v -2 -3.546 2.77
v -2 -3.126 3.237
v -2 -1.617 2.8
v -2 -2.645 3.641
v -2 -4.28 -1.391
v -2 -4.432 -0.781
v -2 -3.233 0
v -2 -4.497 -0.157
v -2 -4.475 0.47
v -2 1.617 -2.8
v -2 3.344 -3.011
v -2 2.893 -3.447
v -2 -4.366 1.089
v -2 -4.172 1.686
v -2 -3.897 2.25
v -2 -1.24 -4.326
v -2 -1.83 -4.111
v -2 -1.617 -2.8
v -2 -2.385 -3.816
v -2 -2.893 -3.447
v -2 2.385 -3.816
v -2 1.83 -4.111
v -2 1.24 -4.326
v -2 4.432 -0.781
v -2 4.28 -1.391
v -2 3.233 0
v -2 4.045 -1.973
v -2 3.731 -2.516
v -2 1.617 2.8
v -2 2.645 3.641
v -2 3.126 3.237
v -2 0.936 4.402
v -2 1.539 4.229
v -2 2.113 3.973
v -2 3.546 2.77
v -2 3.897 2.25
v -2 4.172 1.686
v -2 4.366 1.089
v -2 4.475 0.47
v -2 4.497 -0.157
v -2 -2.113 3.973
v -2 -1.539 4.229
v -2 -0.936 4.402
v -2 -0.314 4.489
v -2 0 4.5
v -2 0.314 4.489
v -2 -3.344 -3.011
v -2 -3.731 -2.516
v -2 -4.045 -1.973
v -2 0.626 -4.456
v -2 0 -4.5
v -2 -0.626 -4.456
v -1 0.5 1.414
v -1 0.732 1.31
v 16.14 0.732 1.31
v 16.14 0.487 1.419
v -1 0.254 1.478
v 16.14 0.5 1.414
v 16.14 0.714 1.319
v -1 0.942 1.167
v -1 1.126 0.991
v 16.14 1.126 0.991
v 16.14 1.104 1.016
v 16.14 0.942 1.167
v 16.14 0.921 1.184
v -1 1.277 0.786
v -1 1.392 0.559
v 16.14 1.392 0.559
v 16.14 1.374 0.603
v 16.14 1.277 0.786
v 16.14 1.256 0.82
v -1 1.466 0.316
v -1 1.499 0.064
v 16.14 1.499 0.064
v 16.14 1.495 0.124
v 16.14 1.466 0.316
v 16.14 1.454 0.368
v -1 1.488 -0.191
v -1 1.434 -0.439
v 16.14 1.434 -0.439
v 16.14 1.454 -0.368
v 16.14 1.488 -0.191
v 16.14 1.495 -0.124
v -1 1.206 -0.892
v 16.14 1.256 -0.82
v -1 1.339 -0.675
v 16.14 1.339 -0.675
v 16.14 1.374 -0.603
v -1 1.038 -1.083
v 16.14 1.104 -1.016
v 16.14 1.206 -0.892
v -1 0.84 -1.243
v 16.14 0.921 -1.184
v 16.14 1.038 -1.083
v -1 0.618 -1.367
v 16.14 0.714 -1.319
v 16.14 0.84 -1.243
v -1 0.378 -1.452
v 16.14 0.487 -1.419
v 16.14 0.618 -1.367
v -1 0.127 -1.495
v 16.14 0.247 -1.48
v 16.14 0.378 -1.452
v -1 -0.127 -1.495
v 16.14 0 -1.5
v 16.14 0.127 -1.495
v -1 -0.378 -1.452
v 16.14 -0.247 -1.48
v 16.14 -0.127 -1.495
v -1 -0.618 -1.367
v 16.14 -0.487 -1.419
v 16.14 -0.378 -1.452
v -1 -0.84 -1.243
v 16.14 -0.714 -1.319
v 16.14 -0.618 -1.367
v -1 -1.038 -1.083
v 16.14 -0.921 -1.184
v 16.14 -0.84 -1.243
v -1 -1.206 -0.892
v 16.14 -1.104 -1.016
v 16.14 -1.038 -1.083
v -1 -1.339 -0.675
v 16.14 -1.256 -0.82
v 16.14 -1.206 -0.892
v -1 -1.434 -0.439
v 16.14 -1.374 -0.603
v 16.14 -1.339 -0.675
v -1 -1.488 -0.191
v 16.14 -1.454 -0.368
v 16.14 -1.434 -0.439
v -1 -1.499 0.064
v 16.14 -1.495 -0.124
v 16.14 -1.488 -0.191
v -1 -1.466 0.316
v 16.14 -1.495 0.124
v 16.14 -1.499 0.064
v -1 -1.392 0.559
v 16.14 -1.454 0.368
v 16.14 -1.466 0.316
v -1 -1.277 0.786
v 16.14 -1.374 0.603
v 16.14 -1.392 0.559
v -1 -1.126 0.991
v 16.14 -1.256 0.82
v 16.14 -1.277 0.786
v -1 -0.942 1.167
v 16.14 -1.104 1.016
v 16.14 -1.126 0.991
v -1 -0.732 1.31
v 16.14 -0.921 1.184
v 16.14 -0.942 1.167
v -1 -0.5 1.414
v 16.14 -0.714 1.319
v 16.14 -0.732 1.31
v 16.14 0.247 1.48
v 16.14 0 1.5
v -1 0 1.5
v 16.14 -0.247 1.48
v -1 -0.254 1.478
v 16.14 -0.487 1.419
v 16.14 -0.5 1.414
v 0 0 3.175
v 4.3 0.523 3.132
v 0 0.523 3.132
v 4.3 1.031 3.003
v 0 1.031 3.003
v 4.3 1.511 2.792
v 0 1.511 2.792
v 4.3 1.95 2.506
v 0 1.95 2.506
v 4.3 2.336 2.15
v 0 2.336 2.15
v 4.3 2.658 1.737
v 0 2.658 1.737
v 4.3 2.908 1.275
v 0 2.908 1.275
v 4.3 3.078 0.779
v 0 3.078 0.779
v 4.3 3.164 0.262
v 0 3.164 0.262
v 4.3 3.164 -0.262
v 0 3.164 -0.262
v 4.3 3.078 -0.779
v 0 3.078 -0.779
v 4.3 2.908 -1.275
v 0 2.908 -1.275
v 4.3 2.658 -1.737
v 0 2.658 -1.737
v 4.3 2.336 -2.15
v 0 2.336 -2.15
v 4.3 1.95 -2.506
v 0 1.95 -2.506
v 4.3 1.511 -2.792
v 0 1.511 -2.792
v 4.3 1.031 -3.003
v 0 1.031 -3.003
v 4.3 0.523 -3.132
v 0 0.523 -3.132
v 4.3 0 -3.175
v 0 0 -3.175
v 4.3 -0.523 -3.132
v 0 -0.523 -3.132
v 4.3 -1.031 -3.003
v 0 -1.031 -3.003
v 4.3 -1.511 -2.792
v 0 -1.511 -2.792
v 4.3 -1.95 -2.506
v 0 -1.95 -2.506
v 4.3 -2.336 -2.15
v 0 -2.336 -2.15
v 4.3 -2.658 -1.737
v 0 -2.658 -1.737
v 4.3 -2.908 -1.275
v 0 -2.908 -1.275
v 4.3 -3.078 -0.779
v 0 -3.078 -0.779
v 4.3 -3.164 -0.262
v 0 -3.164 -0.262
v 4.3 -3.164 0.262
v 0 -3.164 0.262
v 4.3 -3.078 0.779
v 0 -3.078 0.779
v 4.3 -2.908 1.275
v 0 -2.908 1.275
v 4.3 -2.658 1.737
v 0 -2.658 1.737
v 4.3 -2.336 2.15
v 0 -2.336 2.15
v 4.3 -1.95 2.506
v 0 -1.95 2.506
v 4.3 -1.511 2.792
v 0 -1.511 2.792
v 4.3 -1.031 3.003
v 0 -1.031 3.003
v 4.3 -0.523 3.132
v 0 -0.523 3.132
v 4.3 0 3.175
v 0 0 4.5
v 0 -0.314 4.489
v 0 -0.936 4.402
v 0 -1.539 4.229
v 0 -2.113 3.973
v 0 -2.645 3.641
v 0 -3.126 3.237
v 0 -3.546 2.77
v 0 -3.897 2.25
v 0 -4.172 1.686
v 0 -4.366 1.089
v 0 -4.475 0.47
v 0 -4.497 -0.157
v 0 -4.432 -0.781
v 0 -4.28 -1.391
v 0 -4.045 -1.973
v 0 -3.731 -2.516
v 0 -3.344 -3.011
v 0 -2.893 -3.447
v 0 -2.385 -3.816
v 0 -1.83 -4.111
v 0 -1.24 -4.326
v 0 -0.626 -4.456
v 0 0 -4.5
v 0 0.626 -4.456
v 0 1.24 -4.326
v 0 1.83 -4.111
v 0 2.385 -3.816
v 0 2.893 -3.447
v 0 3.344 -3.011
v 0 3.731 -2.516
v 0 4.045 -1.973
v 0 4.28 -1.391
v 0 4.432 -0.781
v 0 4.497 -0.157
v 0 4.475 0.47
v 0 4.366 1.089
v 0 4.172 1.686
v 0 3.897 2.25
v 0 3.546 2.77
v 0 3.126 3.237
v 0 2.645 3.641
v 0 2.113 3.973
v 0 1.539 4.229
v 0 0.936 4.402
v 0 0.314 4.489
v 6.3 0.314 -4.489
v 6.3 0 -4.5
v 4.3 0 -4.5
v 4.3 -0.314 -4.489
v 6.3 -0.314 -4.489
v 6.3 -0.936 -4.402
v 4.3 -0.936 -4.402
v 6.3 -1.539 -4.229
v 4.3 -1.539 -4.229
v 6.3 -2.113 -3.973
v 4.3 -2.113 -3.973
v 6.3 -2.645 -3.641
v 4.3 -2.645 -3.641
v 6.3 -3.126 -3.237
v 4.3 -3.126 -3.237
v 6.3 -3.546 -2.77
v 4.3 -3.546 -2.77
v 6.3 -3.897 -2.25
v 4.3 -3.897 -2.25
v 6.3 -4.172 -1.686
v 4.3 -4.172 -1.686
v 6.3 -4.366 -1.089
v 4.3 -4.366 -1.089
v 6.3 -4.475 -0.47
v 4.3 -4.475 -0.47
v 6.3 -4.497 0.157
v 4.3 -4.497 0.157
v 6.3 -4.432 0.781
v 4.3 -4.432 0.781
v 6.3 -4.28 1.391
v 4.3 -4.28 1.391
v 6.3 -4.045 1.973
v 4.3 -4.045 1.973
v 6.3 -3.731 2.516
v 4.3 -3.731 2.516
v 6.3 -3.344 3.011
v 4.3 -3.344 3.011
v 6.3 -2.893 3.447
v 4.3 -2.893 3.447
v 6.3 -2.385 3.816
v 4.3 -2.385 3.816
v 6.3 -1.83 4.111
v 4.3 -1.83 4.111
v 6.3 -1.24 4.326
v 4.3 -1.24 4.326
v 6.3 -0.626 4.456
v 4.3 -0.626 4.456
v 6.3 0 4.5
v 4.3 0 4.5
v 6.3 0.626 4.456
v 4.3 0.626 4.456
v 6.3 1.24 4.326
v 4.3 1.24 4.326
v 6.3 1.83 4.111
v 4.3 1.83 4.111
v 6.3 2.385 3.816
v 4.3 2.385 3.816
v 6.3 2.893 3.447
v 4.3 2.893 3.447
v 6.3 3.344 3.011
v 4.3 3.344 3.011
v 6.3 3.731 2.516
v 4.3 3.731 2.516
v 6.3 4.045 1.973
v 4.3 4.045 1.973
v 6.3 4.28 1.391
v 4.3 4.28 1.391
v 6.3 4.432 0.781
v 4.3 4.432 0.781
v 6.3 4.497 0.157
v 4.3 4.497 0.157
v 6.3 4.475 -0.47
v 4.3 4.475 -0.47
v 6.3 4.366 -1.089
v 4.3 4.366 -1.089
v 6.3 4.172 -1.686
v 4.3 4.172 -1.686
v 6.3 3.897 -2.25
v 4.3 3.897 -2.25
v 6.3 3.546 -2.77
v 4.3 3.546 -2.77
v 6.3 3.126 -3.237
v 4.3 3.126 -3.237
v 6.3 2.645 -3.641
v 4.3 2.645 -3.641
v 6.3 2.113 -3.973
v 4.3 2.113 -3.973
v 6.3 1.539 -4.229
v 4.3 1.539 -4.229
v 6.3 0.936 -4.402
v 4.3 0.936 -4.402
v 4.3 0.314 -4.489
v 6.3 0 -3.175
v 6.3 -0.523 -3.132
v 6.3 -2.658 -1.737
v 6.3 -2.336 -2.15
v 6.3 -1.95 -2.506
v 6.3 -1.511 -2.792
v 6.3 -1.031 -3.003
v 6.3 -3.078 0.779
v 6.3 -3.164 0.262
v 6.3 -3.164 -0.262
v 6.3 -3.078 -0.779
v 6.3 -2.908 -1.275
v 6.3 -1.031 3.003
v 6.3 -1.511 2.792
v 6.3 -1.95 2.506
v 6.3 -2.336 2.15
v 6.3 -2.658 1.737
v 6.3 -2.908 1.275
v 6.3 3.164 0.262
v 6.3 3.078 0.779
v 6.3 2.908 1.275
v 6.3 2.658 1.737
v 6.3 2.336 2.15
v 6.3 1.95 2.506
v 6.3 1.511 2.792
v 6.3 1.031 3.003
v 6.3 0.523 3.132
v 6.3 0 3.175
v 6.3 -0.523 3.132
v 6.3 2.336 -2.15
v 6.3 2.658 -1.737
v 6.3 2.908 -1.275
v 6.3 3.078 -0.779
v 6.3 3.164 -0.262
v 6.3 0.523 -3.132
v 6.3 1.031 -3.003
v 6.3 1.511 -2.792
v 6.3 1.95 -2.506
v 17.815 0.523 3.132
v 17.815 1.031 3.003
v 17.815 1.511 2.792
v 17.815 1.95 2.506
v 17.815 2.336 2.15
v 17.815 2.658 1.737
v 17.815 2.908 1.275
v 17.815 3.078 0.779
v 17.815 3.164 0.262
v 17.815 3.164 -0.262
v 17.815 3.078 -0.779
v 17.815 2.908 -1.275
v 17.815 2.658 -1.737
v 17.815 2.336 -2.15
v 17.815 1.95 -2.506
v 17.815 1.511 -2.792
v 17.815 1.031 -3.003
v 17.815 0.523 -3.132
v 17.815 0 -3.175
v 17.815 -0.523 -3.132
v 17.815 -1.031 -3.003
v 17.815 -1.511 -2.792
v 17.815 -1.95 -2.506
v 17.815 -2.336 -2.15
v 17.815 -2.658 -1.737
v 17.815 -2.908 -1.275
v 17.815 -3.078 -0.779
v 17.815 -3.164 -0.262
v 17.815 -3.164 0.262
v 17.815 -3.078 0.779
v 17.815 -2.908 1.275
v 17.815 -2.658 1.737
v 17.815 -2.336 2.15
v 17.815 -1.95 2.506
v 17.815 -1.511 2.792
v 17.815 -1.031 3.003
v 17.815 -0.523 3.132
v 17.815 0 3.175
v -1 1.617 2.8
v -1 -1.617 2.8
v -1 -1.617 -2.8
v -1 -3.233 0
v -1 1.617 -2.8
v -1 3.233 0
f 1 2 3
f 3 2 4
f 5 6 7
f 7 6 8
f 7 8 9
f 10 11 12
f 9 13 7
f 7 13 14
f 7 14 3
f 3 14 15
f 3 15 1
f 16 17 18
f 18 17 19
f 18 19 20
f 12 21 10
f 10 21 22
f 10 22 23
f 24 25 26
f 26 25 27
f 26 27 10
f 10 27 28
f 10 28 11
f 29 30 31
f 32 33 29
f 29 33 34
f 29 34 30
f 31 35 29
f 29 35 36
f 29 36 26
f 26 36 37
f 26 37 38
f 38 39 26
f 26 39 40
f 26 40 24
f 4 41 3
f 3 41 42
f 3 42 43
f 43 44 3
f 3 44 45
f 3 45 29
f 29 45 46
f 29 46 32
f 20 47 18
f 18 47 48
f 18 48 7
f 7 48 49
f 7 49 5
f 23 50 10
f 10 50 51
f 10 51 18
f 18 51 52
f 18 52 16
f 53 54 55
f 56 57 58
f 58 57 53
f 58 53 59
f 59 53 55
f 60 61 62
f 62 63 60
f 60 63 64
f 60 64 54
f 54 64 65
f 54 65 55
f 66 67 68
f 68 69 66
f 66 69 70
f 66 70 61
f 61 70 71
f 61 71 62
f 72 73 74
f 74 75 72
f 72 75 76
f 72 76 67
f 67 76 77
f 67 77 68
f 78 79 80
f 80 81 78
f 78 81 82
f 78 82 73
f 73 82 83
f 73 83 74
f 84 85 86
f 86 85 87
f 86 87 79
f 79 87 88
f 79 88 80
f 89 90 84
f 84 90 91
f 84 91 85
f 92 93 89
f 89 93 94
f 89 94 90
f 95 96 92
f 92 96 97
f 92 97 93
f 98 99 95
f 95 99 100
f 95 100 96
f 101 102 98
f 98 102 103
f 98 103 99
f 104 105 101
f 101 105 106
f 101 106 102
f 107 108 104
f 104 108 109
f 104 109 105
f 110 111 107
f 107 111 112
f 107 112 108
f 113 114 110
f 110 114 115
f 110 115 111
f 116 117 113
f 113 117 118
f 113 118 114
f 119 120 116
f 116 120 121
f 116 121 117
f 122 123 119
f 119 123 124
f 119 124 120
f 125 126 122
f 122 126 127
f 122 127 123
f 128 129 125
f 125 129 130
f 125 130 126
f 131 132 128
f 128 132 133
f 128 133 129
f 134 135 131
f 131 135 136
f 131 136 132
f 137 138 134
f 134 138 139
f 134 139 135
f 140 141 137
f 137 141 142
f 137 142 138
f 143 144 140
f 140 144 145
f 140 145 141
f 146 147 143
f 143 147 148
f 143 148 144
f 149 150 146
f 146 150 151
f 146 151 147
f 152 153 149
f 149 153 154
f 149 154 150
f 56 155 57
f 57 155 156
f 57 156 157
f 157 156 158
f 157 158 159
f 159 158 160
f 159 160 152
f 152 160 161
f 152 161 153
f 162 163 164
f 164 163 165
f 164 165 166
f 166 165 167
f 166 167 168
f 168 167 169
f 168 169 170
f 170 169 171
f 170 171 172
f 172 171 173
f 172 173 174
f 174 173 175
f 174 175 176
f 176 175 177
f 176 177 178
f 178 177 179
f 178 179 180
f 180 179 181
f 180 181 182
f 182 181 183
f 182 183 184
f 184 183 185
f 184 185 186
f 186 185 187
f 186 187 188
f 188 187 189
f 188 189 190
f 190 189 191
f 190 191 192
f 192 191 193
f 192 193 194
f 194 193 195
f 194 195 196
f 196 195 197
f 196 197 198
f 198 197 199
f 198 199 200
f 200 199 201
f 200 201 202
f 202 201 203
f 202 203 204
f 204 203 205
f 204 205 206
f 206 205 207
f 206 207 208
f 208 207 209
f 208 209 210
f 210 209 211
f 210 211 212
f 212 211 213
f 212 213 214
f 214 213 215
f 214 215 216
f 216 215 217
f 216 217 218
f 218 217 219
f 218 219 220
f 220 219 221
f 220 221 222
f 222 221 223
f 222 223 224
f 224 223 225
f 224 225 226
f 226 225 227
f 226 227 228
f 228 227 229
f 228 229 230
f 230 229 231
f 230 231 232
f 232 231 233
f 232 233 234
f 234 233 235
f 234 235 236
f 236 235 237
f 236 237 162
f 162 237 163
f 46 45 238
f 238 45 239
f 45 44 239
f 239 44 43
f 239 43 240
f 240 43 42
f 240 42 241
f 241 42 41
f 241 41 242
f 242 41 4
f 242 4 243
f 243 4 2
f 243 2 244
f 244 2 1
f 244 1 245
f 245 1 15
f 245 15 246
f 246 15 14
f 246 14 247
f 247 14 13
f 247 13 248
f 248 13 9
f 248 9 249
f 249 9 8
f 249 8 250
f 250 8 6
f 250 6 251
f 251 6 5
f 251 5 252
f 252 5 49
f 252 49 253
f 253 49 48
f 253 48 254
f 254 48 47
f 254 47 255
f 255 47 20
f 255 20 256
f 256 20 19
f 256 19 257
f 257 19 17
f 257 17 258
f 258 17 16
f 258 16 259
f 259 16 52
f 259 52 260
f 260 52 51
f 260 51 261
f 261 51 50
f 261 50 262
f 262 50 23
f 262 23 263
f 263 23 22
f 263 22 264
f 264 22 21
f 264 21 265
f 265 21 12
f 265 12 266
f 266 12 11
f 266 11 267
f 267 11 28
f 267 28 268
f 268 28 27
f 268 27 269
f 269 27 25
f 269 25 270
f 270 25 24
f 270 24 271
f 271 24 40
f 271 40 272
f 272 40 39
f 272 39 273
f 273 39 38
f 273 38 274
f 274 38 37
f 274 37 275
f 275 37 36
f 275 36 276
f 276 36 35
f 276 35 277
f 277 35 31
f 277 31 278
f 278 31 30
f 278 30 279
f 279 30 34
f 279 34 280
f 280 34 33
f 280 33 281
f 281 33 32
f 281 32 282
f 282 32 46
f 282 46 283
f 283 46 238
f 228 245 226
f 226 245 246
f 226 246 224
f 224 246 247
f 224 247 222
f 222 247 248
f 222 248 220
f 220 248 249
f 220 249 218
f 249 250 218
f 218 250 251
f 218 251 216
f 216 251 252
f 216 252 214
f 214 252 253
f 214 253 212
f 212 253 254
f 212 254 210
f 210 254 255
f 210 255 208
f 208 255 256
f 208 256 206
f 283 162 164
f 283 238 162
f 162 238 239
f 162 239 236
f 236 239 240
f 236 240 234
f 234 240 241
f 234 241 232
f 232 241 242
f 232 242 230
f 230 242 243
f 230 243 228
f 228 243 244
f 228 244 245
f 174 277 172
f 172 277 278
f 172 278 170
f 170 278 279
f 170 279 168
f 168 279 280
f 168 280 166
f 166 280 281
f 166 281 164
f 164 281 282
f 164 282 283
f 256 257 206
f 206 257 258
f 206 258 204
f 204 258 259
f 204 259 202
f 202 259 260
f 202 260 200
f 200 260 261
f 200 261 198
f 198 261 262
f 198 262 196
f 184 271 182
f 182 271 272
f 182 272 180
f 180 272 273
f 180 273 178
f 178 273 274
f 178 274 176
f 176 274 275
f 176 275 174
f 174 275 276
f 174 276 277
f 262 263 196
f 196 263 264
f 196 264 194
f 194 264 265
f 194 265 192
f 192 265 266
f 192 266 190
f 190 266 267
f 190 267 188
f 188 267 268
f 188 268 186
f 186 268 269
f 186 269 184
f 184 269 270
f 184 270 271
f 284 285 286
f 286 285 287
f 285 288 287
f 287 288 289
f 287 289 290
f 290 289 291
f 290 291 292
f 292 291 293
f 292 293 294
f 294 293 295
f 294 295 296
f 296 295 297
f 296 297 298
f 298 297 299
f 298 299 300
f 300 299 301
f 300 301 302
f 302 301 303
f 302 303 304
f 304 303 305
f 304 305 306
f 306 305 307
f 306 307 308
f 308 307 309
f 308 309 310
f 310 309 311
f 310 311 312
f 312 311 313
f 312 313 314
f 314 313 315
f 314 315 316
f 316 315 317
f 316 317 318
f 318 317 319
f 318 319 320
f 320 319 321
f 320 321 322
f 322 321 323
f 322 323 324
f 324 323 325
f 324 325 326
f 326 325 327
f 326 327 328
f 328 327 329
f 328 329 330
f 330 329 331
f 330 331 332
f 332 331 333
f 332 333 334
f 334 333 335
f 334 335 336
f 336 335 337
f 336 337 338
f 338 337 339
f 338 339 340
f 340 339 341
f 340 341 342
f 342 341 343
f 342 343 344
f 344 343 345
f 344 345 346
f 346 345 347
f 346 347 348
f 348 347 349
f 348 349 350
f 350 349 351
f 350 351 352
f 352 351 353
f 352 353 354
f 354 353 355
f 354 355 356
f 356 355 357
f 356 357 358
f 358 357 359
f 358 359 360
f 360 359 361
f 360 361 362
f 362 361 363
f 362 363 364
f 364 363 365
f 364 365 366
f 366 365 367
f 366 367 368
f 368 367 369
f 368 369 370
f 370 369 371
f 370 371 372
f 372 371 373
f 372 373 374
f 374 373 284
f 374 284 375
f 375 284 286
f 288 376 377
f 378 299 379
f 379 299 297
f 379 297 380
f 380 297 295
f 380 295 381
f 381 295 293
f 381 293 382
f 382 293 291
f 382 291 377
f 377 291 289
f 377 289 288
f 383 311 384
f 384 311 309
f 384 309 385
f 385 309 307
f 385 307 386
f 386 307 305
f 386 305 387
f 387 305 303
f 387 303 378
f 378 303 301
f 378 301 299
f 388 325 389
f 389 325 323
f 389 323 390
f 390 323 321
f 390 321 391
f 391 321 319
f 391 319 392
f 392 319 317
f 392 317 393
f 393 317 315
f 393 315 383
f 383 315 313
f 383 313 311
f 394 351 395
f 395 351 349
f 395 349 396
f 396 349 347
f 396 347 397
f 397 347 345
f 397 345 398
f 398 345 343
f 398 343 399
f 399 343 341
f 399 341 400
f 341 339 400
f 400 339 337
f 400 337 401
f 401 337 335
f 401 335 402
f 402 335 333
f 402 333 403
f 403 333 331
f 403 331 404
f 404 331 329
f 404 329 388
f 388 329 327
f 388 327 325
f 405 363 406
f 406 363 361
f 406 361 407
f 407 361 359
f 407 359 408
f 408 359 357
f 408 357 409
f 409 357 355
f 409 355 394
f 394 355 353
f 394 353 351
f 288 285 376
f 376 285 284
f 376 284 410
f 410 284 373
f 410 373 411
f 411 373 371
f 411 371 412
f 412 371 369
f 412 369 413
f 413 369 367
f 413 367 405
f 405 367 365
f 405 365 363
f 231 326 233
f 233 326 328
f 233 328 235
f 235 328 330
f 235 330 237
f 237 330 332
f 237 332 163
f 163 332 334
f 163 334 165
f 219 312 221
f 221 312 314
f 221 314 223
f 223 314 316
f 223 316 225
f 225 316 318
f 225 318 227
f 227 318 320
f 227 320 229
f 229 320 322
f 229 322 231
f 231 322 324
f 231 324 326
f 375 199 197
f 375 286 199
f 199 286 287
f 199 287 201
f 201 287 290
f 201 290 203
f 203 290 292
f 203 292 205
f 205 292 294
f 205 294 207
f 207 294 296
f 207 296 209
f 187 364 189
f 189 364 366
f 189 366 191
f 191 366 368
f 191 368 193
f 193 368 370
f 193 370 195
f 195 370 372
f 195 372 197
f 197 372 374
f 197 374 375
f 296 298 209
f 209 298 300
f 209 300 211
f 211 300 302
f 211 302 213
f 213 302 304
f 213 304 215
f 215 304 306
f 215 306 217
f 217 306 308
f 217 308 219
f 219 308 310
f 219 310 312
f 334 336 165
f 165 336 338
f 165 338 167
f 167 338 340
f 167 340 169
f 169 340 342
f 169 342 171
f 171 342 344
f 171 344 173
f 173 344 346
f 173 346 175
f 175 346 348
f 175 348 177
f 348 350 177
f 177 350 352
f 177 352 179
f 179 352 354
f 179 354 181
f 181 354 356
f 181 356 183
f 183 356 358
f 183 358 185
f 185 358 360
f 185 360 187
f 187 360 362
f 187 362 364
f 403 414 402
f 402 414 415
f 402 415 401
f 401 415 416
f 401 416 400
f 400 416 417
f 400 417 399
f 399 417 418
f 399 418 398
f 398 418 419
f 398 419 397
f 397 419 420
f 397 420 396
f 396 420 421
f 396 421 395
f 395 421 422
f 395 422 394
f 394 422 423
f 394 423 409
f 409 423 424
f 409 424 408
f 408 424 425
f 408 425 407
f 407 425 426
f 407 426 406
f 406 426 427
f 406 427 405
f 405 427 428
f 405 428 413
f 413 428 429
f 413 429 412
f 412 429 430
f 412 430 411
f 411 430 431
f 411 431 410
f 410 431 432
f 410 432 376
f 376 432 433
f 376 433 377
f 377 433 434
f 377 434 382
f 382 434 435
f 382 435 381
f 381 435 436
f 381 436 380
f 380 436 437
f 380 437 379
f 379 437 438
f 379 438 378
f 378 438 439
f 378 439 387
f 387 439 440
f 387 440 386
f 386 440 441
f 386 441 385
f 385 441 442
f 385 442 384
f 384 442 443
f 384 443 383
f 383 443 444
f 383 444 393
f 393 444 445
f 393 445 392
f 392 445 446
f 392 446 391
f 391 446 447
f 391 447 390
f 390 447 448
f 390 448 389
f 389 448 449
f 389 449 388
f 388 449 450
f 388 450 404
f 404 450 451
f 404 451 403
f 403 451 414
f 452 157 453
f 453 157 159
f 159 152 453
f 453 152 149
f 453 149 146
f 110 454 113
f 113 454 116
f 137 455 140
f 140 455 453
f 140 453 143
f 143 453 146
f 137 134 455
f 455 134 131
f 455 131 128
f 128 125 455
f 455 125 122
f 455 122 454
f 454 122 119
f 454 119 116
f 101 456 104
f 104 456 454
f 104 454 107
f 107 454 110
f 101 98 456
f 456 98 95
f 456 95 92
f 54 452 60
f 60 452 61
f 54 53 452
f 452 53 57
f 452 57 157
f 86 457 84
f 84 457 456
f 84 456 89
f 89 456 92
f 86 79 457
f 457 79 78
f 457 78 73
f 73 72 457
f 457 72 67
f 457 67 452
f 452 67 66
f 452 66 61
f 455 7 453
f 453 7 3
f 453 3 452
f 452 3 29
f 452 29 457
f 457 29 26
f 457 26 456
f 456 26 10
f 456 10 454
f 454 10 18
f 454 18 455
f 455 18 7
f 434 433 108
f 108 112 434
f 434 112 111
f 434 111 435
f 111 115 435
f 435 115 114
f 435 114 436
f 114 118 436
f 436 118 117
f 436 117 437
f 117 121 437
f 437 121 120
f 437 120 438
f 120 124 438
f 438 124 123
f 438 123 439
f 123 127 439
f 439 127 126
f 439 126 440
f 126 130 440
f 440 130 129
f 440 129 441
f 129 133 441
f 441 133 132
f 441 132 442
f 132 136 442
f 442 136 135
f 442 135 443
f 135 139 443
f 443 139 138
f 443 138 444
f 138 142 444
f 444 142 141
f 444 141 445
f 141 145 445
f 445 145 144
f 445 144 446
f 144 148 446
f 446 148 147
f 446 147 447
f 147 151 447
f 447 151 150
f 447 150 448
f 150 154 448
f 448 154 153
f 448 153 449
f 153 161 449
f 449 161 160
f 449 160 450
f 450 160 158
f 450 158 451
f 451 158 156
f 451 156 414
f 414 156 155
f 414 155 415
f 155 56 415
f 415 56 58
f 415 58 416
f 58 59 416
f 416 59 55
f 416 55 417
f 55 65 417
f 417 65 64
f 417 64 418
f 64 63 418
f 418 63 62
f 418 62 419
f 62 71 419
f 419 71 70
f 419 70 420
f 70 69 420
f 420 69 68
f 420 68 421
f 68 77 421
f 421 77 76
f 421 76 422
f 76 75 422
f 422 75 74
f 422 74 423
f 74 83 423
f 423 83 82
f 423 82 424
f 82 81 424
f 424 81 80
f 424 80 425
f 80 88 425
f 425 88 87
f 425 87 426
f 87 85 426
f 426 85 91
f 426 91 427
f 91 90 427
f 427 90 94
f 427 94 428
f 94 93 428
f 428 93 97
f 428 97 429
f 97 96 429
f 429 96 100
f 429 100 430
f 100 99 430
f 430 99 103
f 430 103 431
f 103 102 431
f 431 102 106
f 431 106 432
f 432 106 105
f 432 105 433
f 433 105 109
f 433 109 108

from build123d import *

# Parameters (mm, degrees)
SKETCH1_R                     = 3.175
BOSS_EXTRUDE1_DEPTH           = 18
SKETCH4_R                     = 4.5
BOSS_EXTRUDE2_DEPTH           = 2
BOSS_EXTRUDE3_START           = -6.3
SKETCH4_3_R                   = 4.5
BOSS_EXTRUDE3_DEPTH           = 2
CUT_EXTRUDE3_DEPTH            = 21.988091862
CUT_EXTRUDE3_DEPTH_BACK       = 21.988091862
SKETCH5_R                     = 1.5
CUT_EXTRUDE4_DEPTH            = 21.988091862
CUT_EXTRUDE4_DEPTH_BACK       = 1
CSK_FOR_M3_SFHCS1_D           = 3
CSK_FOR_M3_SFHCS1_DEPTH       = 5.098709071
CSK_FOR_M3_SFHCS1_CSINK_D     = 6.72
CSK_FOR_M3_SFHCS1_CSINK_ANGLE = 90
CSK_FOR_M3_SFHCS1_TIP         = 0.901290929


with BuildPart() as part:
    # Sketch1 → Boss-Extrude1 (new body)
    with BuildSketch(Plane(origin=(0, 0, 0), x_dir=(0, 0, -1), z_dir=(1, 0, 0))):
        Circle(SKETCH1_R)
    extrude(amount=BOSS_EXTRUDE1_DEPTH)

    # Sketch4 → Boss-Extrude2 (add)
    with BuildSketch(Plane.ZY):
        Circle(SKETCH4_R)
    extrude(amount=BOSS_EXTRUDE2_DEPTH)

    # Sketch4<3> → Boss-Extrude3 (add)
    with BuildSketch(Plane.ZY.offset(BOSS_EXTRUDE3_START)):
        Circle(SKETCH4_3_R)
    extrude(amount=BOSS_EXTRUDE3_DEPTH)

    # Sketch5 → Cut-Extrude3 (cut, two sides: drawn at the far end of the back side and taken through both)
    with BuildSketch(Plane.ZY.offset(2).offset(-CUT_EXTRUDE3_DEPTH_BACK)):
        Circle(SKETCH5_R)
    extrude(amount=CUT_EXTRUDE3_DEPTH + CUT_EXTRUDE3_DEPTH_BACK, mode=Mode.SUBTRACT)

    # Sketch6 → Cut-Extrude4 (cut, two sides: drawn at the far end of the back side and taken through both)
    with BuildSketch(Plane.ZY.offset(2).offset(-CUT_EXTRUDE4_DEPTH_BACK)):
        Polygon((2.8, -1.616580754), (2.8, 1.616580754), (0, 3.233161507), (-2.8, 1.616580754), (-2.8, -1.616580754), (0, -3.233161507), align=None)
    extrude(amount=CUT_EXTRUDE4_DEPTH + CUT_EXTRUDE4_DEPTH_BACK, mode=Mode.SUBTRACT)

    # CSK for M3 SFHCS1
    with Locations(Plane(origin=(18, 0, 0), x_dir=(0, 0, -1), z_dir=(1, 0, 0))):
        with Locations((0, 0)):
            CounterSinkHole(CSK_FOR_M3_SFHCS1_D / 2, CSK_FOR_M3_SFHCS1_CSINK_D / 2, depth=CSK_FOR_M3_SFHCS1_DEPTH, counter_sink_angle=CSK_FOR_M3_SFHCS1_CSINK_ANGLE)
            with Locations((0, 0, -(CSK_FOR_M3_SFHCS1_DEPTH + CSK_FOR_M3_SFHCS1_TIP / 2))):  # 118° drill point
                Cone(0, CSK_FOR_M3_SFHCS1_D / 2, CSK_FOR_M3_SFHCS1_TIP, mode=Mode.SUBTRACT)


solid = part.part
